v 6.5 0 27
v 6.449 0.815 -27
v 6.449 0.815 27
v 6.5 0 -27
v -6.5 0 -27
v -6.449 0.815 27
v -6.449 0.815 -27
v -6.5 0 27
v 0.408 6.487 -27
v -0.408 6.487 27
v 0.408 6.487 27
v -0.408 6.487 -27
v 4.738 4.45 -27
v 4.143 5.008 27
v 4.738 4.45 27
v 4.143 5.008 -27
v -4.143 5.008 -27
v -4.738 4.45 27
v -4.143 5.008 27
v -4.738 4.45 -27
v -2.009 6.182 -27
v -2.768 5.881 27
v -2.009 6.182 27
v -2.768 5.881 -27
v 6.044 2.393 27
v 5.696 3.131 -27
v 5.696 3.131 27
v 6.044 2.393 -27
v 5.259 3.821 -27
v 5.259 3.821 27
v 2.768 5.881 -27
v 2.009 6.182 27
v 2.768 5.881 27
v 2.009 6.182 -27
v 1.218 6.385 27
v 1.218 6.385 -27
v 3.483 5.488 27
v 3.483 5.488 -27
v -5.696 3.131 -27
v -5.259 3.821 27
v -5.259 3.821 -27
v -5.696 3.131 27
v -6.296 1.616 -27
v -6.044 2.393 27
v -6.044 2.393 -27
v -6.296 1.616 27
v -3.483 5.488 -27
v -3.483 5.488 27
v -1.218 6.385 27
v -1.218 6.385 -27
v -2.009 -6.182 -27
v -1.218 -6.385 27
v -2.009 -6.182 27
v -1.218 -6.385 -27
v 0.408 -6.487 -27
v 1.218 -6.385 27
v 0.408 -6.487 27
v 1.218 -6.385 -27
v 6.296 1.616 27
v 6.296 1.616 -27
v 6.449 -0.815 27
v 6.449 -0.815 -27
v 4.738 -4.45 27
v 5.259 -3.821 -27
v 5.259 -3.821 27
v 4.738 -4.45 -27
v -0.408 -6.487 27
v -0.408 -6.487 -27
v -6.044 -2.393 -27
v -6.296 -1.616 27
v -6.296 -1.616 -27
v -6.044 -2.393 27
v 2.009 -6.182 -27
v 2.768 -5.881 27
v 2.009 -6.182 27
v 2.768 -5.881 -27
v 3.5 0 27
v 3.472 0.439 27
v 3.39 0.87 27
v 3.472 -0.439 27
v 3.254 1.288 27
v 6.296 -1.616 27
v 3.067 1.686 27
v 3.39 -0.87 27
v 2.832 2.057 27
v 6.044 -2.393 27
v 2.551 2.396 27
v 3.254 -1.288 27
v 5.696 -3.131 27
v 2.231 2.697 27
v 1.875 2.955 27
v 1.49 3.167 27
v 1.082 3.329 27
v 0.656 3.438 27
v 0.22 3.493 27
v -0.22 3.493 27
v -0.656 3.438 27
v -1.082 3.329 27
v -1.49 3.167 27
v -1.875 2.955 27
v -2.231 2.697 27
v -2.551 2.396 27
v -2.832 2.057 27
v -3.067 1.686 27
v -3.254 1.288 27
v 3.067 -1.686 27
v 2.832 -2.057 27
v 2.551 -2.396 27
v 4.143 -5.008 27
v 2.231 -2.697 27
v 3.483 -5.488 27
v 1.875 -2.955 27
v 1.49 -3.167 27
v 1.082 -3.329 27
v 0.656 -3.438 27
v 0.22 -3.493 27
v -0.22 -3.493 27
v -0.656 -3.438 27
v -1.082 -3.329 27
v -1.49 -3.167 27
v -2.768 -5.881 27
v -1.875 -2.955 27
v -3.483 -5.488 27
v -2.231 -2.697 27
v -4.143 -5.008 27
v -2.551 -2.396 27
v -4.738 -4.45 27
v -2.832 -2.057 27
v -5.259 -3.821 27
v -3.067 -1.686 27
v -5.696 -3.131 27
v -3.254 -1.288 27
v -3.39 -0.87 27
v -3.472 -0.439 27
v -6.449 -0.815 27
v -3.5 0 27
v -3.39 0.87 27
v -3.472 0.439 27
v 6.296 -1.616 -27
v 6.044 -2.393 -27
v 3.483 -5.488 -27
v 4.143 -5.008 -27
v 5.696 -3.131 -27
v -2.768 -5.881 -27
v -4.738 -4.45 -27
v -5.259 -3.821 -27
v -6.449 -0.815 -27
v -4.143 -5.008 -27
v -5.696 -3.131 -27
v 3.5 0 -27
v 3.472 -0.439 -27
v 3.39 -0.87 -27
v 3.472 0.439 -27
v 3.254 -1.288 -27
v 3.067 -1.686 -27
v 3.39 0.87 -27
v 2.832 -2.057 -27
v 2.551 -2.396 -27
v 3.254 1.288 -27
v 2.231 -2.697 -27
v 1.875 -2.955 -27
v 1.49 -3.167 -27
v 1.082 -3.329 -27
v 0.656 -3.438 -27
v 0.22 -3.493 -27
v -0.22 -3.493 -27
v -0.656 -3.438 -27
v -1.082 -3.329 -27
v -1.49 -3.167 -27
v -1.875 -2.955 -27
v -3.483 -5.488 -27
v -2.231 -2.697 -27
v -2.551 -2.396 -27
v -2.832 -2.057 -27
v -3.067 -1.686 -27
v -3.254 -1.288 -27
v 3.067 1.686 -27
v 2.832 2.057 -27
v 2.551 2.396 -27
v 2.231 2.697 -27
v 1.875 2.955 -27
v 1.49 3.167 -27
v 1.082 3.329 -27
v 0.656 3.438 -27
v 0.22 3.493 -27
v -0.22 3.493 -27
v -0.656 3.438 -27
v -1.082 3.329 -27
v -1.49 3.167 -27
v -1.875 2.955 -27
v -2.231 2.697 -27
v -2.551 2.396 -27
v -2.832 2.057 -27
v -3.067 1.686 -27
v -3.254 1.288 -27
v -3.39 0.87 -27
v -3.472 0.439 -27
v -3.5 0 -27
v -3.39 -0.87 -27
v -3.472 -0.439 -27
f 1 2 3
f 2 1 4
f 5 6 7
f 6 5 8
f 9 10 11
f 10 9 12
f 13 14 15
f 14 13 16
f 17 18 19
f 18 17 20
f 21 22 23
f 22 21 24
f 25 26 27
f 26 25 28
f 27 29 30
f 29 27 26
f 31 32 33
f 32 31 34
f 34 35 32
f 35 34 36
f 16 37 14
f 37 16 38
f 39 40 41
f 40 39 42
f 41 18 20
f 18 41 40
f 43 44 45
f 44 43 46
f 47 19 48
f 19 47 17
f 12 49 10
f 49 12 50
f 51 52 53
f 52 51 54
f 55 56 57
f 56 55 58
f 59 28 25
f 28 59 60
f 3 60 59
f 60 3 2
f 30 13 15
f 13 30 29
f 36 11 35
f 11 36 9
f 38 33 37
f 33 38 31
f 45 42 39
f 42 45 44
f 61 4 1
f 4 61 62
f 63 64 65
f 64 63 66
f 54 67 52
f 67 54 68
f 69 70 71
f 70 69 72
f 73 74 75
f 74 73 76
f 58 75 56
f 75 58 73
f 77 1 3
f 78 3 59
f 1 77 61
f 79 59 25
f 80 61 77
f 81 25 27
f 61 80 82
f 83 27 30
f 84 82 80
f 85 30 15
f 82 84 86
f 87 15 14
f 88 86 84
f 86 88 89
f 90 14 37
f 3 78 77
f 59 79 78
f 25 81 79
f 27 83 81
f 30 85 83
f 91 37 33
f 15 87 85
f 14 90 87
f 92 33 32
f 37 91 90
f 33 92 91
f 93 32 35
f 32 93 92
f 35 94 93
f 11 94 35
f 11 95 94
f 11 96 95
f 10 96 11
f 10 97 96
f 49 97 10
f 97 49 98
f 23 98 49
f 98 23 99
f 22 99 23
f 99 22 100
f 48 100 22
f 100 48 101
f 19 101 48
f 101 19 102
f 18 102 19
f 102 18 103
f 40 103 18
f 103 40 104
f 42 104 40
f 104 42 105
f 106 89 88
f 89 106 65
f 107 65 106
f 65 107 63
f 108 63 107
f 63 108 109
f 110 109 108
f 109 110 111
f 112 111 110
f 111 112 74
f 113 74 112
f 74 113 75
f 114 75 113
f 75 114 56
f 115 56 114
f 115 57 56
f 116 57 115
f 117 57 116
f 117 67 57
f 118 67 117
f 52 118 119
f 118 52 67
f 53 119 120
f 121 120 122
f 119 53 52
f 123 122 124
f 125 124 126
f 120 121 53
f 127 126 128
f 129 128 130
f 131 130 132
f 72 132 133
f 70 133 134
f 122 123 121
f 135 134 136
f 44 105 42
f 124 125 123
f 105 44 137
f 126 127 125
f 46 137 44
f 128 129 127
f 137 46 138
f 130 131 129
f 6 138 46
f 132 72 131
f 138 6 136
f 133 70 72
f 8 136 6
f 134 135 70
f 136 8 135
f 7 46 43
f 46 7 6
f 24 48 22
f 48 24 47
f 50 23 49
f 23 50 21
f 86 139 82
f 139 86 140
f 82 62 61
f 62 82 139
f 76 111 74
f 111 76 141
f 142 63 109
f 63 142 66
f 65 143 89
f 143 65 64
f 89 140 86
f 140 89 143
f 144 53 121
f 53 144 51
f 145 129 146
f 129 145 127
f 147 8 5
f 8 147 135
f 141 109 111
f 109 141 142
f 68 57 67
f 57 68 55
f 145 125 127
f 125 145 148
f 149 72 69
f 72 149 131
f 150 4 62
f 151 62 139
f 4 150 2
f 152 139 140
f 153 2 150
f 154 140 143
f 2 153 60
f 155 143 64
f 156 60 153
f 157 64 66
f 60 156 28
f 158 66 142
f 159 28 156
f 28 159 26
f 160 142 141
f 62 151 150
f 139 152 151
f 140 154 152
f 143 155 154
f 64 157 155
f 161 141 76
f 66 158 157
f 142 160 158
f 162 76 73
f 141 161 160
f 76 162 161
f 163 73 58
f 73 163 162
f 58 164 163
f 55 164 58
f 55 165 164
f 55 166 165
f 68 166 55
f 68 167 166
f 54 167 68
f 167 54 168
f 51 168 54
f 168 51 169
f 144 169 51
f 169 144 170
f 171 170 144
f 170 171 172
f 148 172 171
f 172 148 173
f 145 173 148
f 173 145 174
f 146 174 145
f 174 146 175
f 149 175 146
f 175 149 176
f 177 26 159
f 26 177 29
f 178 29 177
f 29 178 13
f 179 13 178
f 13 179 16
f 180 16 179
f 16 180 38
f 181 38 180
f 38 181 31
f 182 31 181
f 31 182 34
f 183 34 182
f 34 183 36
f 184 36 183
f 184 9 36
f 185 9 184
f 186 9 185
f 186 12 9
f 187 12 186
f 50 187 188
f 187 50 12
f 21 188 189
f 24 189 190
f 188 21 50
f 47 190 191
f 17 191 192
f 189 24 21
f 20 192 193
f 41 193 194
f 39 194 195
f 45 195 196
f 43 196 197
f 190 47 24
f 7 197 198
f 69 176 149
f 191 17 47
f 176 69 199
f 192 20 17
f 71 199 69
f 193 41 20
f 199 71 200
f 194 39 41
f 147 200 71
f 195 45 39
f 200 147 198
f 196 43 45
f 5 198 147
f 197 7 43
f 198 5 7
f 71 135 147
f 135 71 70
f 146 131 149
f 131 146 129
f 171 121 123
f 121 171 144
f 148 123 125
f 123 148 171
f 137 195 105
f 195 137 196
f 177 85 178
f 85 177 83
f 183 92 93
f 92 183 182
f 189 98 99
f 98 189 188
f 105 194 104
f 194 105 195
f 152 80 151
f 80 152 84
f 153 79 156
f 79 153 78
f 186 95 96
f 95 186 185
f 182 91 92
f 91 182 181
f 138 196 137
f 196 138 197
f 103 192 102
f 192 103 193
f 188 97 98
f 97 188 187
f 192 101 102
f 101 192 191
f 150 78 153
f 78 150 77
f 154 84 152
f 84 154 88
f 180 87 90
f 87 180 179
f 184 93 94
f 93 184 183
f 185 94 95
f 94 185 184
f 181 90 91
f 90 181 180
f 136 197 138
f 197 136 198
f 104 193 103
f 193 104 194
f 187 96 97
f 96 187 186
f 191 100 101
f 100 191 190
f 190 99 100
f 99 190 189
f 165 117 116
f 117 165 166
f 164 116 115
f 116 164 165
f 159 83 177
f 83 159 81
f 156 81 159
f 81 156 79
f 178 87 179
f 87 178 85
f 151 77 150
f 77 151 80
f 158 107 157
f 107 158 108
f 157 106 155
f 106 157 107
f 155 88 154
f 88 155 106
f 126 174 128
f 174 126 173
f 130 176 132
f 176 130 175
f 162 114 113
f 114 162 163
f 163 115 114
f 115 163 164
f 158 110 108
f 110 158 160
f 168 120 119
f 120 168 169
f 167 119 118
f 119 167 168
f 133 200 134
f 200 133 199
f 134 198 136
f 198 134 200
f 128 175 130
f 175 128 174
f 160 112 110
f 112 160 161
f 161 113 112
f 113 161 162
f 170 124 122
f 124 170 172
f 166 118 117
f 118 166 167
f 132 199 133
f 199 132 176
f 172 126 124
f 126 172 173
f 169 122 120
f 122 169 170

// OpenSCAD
$fn = 50;


difference() {
	union() {
		translate(v = [0, 0, -27.0000000000]) {
			cylinder(h = 54, r = 6.5000000000);
		}
	}
	union() {
		translate(v = [0, 0, -100.0000000000]) {
			cylinder(h = 200, r = 3.5000000000);
		}
	}
}
